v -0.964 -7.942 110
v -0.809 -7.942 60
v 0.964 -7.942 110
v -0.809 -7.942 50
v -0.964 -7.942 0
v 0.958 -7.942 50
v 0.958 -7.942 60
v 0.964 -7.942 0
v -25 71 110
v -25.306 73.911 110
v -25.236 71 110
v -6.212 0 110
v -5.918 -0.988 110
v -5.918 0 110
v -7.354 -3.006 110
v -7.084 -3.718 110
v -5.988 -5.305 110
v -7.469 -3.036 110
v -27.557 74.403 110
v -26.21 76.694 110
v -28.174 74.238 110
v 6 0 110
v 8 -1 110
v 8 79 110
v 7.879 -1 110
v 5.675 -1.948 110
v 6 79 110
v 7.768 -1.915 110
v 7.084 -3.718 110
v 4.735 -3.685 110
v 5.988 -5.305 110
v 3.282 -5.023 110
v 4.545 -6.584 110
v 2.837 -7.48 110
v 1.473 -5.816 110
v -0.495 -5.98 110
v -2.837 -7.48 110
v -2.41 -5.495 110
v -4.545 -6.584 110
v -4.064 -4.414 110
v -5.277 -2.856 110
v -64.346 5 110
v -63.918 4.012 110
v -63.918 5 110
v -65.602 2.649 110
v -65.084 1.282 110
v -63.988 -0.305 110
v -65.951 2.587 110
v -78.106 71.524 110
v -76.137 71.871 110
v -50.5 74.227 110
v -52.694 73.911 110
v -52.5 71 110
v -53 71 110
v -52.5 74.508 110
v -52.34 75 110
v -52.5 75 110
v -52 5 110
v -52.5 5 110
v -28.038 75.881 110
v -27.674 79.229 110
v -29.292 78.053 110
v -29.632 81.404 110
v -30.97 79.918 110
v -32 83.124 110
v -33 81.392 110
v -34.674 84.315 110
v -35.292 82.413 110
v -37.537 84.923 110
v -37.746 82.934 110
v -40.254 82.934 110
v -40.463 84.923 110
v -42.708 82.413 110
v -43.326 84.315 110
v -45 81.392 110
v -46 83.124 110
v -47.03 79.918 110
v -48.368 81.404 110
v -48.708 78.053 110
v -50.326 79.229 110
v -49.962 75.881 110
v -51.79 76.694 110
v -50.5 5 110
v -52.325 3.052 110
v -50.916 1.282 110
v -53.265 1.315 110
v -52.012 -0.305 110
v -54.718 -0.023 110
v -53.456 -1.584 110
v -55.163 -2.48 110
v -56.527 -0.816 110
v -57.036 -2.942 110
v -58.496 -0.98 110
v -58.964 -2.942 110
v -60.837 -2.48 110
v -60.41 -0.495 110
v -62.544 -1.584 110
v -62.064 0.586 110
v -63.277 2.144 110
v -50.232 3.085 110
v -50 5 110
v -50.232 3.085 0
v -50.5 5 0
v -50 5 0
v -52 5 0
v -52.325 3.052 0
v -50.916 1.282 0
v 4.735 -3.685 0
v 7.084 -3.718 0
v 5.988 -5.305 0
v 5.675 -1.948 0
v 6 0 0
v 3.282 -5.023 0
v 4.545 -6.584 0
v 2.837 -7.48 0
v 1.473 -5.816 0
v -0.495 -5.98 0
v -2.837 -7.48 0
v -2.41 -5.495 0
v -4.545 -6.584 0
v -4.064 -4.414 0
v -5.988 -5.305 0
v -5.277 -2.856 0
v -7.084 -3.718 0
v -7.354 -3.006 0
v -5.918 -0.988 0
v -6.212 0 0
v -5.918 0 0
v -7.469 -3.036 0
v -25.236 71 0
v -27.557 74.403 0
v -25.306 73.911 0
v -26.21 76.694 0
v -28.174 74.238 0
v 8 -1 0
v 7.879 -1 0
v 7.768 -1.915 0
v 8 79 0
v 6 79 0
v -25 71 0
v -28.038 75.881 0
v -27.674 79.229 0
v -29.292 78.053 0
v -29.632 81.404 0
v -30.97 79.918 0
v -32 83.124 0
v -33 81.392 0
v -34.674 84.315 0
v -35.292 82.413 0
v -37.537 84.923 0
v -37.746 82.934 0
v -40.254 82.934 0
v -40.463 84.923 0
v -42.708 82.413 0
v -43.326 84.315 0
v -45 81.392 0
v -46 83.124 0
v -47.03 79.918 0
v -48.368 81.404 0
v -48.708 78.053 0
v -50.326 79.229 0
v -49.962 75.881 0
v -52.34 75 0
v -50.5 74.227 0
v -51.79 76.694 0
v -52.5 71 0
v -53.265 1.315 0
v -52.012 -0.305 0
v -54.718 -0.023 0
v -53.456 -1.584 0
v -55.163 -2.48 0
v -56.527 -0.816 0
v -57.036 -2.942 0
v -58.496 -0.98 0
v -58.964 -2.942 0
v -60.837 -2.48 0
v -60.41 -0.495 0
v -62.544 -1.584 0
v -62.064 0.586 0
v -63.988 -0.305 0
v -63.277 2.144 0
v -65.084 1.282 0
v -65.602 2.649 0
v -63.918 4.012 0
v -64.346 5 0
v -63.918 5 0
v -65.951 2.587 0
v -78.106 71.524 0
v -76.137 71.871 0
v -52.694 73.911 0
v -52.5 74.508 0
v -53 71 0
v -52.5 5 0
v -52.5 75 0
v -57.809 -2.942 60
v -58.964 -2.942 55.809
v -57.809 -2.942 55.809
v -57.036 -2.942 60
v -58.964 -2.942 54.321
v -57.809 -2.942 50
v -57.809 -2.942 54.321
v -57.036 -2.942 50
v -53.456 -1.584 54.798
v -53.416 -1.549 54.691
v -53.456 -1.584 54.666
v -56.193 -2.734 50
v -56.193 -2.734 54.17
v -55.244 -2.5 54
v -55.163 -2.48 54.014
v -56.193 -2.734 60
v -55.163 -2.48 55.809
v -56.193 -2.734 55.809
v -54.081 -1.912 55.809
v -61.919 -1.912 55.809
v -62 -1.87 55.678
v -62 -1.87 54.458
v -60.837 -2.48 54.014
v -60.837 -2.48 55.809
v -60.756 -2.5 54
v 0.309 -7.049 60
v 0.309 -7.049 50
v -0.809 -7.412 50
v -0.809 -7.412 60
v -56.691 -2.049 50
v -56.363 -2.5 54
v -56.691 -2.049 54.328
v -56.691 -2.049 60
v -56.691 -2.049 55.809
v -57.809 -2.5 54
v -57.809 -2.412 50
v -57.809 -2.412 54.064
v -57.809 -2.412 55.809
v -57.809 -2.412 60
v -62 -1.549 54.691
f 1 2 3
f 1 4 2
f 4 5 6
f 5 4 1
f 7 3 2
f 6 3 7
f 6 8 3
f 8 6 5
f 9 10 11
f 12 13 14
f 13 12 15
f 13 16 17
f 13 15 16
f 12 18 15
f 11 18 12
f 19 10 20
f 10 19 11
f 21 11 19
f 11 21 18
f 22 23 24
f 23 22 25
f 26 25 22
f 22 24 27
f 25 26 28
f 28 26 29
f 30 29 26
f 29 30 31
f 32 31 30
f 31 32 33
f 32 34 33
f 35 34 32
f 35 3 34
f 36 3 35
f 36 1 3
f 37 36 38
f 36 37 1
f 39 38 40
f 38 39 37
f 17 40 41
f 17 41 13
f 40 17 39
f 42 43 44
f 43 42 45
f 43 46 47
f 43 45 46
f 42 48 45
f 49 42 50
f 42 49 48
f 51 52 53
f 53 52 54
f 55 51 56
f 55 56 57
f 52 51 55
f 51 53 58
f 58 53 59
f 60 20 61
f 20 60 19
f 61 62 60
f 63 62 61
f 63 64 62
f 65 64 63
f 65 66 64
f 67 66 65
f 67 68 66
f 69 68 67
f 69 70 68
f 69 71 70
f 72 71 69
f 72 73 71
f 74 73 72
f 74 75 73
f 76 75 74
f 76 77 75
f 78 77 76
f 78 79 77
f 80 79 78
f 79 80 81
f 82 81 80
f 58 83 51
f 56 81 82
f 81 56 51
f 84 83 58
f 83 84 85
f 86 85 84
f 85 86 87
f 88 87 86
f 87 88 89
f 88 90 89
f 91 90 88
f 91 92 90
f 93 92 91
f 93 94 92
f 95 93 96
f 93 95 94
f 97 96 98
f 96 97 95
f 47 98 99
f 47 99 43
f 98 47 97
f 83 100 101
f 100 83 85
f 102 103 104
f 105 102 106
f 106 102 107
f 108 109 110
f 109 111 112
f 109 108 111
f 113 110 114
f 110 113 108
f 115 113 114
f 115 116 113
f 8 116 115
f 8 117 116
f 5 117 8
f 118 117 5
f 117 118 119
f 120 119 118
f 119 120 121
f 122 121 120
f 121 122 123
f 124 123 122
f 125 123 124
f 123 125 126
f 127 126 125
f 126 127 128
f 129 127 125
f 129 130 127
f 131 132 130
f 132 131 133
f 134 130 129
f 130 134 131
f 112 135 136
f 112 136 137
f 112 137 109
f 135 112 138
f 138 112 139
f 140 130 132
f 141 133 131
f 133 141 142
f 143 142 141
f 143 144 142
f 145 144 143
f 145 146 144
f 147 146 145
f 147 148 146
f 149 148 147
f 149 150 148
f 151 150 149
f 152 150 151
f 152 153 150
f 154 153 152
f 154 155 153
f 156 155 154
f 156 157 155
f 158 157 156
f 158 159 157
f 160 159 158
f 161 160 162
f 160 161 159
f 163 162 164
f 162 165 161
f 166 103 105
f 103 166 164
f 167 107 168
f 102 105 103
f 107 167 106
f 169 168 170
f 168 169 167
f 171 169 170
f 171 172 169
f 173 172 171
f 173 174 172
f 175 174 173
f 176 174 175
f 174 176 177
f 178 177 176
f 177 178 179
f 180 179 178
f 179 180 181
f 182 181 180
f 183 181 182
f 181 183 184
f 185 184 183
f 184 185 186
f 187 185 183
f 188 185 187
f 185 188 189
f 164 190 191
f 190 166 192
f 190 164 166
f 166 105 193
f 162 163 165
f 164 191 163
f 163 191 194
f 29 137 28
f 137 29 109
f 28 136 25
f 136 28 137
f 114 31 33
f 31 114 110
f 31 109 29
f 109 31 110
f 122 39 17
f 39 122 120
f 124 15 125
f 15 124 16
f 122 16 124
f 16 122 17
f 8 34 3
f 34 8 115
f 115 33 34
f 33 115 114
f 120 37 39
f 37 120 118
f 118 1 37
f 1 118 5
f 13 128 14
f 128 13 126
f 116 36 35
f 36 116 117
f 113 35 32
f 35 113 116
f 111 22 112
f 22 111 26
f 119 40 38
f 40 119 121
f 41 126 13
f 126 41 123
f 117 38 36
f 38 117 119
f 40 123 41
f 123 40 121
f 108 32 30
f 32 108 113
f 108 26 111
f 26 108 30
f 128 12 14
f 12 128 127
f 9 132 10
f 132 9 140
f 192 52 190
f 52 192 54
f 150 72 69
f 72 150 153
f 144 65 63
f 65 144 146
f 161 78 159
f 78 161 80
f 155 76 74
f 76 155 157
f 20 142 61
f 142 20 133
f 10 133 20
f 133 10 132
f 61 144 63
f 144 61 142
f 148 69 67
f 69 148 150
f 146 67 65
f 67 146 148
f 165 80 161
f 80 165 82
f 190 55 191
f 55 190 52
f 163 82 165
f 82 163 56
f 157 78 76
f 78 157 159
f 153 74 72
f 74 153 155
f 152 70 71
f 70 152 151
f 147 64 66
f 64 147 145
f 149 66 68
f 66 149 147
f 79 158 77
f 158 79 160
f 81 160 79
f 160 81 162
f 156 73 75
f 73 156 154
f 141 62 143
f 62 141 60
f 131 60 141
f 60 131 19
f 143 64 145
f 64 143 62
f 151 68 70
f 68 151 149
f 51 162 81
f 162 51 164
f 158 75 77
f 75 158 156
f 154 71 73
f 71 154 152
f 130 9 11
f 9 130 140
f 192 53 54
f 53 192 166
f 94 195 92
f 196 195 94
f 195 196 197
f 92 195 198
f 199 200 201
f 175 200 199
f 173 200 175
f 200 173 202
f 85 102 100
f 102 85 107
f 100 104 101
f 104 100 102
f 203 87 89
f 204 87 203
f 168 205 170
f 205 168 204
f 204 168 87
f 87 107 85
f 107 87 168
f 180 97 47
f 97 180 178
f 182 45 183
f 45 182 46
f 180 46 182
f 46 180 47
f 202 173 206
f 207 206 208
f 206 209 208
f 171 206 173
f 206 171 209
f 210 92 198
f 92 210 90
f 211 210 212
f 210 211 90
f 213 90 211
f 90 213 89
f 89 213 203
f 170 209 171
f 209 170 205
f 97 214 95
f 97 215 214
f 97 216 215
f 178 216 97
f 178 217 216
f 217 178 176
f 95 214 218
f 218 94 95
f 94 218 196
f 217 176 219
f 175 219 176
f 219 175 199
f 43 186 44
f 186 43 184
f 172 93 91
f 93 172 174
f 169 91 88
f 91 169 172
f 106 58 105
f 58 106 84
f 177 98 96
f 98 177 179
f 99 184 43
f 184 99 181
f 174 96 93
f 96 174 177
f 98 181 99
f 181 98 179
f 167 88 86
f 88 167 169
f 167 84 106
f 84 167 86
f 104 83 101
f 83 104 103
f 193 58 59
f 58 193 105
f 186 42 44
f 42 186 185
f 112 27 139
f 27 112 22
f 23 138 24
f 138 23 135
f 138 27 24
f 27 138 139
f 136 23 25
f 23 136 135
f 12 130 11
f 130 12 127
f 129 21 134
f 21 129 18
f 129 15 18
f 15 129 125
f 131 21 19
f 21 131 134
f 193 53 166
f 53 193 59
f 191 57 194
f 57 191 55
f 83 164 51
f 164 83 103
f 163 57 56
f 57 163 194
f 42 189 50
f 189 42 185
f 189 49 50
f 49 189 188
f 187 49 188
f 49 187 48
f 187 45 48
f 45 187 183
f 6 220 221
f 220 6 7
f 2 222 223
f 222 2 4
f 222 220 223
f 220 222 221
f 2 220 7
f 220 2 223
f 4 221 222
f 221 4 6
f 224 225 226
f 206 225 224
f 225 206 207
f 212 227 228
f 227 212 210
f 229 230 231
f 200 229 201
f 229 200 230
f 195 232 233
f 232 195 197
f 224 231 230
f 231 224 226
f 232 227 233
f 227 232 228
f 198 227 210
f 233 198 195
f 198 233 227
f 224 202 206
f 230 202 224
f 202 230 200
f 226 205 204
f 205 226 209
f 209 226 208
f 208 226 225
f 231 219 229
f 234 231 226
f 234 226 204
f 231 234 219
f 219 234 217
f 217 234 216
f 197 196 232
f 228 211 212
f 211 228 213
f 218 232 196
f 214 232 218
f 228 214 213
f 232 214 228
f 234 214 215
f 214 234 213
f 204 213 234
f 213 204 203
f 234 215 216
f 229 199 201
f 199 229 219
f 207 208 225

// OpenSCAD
difference() {
	union() {
		// base
		translate([6,-1,0])
		cube([2,80,110]);

		// bottom curve
		difference() {
			difference() {
				cylinder(r=8,h=110);
				translate([0,0,-1])
				cylinder(r=6,h=112);
			}
			translate([-10,0,-1])
			cube([20,20,114]);
		}
		
		// first support
		rotate(15,[0,0,1])
		translate([-8,-1,0])
		cube([2,80,110]);

		// middle curve
		translate([-39,71,0])
		difference() {
			difference() {
				cylinder(r=14,h=110);
				translate([0,0,-1])
				cylinder(r=12,h=112);
			}
			translate([-20,-20,-1])
			cube([40,20,114]);
		}

		// second support
		translate([-52.5,5,0])
		cube([2,70,110]);

		// bottom curve
		translate([-58,5,0])
		difference() {
			difference() {
				cylinder(r=8,h=110);
				translate([0,0,-1])
				cylinder(r=6,h=112);
			}
			translate([-10,0,-1])
			cube([20,20,114]);
		}

		// top support
		rotate(10,[0,0,1])
		translate([-64.5,14,0])
		cube([2,70,110]);
	}
	// minus
	translate([0,-8,50])
	cylinder(r=1,h=10);

	// plus
	translate([-57,-3,50])
	cylinder(r=1,h=10);

	translate([-62,-2.5,55])
	rotate(90,[0,1,0])
	cylinder(r=1,h=10);
}
